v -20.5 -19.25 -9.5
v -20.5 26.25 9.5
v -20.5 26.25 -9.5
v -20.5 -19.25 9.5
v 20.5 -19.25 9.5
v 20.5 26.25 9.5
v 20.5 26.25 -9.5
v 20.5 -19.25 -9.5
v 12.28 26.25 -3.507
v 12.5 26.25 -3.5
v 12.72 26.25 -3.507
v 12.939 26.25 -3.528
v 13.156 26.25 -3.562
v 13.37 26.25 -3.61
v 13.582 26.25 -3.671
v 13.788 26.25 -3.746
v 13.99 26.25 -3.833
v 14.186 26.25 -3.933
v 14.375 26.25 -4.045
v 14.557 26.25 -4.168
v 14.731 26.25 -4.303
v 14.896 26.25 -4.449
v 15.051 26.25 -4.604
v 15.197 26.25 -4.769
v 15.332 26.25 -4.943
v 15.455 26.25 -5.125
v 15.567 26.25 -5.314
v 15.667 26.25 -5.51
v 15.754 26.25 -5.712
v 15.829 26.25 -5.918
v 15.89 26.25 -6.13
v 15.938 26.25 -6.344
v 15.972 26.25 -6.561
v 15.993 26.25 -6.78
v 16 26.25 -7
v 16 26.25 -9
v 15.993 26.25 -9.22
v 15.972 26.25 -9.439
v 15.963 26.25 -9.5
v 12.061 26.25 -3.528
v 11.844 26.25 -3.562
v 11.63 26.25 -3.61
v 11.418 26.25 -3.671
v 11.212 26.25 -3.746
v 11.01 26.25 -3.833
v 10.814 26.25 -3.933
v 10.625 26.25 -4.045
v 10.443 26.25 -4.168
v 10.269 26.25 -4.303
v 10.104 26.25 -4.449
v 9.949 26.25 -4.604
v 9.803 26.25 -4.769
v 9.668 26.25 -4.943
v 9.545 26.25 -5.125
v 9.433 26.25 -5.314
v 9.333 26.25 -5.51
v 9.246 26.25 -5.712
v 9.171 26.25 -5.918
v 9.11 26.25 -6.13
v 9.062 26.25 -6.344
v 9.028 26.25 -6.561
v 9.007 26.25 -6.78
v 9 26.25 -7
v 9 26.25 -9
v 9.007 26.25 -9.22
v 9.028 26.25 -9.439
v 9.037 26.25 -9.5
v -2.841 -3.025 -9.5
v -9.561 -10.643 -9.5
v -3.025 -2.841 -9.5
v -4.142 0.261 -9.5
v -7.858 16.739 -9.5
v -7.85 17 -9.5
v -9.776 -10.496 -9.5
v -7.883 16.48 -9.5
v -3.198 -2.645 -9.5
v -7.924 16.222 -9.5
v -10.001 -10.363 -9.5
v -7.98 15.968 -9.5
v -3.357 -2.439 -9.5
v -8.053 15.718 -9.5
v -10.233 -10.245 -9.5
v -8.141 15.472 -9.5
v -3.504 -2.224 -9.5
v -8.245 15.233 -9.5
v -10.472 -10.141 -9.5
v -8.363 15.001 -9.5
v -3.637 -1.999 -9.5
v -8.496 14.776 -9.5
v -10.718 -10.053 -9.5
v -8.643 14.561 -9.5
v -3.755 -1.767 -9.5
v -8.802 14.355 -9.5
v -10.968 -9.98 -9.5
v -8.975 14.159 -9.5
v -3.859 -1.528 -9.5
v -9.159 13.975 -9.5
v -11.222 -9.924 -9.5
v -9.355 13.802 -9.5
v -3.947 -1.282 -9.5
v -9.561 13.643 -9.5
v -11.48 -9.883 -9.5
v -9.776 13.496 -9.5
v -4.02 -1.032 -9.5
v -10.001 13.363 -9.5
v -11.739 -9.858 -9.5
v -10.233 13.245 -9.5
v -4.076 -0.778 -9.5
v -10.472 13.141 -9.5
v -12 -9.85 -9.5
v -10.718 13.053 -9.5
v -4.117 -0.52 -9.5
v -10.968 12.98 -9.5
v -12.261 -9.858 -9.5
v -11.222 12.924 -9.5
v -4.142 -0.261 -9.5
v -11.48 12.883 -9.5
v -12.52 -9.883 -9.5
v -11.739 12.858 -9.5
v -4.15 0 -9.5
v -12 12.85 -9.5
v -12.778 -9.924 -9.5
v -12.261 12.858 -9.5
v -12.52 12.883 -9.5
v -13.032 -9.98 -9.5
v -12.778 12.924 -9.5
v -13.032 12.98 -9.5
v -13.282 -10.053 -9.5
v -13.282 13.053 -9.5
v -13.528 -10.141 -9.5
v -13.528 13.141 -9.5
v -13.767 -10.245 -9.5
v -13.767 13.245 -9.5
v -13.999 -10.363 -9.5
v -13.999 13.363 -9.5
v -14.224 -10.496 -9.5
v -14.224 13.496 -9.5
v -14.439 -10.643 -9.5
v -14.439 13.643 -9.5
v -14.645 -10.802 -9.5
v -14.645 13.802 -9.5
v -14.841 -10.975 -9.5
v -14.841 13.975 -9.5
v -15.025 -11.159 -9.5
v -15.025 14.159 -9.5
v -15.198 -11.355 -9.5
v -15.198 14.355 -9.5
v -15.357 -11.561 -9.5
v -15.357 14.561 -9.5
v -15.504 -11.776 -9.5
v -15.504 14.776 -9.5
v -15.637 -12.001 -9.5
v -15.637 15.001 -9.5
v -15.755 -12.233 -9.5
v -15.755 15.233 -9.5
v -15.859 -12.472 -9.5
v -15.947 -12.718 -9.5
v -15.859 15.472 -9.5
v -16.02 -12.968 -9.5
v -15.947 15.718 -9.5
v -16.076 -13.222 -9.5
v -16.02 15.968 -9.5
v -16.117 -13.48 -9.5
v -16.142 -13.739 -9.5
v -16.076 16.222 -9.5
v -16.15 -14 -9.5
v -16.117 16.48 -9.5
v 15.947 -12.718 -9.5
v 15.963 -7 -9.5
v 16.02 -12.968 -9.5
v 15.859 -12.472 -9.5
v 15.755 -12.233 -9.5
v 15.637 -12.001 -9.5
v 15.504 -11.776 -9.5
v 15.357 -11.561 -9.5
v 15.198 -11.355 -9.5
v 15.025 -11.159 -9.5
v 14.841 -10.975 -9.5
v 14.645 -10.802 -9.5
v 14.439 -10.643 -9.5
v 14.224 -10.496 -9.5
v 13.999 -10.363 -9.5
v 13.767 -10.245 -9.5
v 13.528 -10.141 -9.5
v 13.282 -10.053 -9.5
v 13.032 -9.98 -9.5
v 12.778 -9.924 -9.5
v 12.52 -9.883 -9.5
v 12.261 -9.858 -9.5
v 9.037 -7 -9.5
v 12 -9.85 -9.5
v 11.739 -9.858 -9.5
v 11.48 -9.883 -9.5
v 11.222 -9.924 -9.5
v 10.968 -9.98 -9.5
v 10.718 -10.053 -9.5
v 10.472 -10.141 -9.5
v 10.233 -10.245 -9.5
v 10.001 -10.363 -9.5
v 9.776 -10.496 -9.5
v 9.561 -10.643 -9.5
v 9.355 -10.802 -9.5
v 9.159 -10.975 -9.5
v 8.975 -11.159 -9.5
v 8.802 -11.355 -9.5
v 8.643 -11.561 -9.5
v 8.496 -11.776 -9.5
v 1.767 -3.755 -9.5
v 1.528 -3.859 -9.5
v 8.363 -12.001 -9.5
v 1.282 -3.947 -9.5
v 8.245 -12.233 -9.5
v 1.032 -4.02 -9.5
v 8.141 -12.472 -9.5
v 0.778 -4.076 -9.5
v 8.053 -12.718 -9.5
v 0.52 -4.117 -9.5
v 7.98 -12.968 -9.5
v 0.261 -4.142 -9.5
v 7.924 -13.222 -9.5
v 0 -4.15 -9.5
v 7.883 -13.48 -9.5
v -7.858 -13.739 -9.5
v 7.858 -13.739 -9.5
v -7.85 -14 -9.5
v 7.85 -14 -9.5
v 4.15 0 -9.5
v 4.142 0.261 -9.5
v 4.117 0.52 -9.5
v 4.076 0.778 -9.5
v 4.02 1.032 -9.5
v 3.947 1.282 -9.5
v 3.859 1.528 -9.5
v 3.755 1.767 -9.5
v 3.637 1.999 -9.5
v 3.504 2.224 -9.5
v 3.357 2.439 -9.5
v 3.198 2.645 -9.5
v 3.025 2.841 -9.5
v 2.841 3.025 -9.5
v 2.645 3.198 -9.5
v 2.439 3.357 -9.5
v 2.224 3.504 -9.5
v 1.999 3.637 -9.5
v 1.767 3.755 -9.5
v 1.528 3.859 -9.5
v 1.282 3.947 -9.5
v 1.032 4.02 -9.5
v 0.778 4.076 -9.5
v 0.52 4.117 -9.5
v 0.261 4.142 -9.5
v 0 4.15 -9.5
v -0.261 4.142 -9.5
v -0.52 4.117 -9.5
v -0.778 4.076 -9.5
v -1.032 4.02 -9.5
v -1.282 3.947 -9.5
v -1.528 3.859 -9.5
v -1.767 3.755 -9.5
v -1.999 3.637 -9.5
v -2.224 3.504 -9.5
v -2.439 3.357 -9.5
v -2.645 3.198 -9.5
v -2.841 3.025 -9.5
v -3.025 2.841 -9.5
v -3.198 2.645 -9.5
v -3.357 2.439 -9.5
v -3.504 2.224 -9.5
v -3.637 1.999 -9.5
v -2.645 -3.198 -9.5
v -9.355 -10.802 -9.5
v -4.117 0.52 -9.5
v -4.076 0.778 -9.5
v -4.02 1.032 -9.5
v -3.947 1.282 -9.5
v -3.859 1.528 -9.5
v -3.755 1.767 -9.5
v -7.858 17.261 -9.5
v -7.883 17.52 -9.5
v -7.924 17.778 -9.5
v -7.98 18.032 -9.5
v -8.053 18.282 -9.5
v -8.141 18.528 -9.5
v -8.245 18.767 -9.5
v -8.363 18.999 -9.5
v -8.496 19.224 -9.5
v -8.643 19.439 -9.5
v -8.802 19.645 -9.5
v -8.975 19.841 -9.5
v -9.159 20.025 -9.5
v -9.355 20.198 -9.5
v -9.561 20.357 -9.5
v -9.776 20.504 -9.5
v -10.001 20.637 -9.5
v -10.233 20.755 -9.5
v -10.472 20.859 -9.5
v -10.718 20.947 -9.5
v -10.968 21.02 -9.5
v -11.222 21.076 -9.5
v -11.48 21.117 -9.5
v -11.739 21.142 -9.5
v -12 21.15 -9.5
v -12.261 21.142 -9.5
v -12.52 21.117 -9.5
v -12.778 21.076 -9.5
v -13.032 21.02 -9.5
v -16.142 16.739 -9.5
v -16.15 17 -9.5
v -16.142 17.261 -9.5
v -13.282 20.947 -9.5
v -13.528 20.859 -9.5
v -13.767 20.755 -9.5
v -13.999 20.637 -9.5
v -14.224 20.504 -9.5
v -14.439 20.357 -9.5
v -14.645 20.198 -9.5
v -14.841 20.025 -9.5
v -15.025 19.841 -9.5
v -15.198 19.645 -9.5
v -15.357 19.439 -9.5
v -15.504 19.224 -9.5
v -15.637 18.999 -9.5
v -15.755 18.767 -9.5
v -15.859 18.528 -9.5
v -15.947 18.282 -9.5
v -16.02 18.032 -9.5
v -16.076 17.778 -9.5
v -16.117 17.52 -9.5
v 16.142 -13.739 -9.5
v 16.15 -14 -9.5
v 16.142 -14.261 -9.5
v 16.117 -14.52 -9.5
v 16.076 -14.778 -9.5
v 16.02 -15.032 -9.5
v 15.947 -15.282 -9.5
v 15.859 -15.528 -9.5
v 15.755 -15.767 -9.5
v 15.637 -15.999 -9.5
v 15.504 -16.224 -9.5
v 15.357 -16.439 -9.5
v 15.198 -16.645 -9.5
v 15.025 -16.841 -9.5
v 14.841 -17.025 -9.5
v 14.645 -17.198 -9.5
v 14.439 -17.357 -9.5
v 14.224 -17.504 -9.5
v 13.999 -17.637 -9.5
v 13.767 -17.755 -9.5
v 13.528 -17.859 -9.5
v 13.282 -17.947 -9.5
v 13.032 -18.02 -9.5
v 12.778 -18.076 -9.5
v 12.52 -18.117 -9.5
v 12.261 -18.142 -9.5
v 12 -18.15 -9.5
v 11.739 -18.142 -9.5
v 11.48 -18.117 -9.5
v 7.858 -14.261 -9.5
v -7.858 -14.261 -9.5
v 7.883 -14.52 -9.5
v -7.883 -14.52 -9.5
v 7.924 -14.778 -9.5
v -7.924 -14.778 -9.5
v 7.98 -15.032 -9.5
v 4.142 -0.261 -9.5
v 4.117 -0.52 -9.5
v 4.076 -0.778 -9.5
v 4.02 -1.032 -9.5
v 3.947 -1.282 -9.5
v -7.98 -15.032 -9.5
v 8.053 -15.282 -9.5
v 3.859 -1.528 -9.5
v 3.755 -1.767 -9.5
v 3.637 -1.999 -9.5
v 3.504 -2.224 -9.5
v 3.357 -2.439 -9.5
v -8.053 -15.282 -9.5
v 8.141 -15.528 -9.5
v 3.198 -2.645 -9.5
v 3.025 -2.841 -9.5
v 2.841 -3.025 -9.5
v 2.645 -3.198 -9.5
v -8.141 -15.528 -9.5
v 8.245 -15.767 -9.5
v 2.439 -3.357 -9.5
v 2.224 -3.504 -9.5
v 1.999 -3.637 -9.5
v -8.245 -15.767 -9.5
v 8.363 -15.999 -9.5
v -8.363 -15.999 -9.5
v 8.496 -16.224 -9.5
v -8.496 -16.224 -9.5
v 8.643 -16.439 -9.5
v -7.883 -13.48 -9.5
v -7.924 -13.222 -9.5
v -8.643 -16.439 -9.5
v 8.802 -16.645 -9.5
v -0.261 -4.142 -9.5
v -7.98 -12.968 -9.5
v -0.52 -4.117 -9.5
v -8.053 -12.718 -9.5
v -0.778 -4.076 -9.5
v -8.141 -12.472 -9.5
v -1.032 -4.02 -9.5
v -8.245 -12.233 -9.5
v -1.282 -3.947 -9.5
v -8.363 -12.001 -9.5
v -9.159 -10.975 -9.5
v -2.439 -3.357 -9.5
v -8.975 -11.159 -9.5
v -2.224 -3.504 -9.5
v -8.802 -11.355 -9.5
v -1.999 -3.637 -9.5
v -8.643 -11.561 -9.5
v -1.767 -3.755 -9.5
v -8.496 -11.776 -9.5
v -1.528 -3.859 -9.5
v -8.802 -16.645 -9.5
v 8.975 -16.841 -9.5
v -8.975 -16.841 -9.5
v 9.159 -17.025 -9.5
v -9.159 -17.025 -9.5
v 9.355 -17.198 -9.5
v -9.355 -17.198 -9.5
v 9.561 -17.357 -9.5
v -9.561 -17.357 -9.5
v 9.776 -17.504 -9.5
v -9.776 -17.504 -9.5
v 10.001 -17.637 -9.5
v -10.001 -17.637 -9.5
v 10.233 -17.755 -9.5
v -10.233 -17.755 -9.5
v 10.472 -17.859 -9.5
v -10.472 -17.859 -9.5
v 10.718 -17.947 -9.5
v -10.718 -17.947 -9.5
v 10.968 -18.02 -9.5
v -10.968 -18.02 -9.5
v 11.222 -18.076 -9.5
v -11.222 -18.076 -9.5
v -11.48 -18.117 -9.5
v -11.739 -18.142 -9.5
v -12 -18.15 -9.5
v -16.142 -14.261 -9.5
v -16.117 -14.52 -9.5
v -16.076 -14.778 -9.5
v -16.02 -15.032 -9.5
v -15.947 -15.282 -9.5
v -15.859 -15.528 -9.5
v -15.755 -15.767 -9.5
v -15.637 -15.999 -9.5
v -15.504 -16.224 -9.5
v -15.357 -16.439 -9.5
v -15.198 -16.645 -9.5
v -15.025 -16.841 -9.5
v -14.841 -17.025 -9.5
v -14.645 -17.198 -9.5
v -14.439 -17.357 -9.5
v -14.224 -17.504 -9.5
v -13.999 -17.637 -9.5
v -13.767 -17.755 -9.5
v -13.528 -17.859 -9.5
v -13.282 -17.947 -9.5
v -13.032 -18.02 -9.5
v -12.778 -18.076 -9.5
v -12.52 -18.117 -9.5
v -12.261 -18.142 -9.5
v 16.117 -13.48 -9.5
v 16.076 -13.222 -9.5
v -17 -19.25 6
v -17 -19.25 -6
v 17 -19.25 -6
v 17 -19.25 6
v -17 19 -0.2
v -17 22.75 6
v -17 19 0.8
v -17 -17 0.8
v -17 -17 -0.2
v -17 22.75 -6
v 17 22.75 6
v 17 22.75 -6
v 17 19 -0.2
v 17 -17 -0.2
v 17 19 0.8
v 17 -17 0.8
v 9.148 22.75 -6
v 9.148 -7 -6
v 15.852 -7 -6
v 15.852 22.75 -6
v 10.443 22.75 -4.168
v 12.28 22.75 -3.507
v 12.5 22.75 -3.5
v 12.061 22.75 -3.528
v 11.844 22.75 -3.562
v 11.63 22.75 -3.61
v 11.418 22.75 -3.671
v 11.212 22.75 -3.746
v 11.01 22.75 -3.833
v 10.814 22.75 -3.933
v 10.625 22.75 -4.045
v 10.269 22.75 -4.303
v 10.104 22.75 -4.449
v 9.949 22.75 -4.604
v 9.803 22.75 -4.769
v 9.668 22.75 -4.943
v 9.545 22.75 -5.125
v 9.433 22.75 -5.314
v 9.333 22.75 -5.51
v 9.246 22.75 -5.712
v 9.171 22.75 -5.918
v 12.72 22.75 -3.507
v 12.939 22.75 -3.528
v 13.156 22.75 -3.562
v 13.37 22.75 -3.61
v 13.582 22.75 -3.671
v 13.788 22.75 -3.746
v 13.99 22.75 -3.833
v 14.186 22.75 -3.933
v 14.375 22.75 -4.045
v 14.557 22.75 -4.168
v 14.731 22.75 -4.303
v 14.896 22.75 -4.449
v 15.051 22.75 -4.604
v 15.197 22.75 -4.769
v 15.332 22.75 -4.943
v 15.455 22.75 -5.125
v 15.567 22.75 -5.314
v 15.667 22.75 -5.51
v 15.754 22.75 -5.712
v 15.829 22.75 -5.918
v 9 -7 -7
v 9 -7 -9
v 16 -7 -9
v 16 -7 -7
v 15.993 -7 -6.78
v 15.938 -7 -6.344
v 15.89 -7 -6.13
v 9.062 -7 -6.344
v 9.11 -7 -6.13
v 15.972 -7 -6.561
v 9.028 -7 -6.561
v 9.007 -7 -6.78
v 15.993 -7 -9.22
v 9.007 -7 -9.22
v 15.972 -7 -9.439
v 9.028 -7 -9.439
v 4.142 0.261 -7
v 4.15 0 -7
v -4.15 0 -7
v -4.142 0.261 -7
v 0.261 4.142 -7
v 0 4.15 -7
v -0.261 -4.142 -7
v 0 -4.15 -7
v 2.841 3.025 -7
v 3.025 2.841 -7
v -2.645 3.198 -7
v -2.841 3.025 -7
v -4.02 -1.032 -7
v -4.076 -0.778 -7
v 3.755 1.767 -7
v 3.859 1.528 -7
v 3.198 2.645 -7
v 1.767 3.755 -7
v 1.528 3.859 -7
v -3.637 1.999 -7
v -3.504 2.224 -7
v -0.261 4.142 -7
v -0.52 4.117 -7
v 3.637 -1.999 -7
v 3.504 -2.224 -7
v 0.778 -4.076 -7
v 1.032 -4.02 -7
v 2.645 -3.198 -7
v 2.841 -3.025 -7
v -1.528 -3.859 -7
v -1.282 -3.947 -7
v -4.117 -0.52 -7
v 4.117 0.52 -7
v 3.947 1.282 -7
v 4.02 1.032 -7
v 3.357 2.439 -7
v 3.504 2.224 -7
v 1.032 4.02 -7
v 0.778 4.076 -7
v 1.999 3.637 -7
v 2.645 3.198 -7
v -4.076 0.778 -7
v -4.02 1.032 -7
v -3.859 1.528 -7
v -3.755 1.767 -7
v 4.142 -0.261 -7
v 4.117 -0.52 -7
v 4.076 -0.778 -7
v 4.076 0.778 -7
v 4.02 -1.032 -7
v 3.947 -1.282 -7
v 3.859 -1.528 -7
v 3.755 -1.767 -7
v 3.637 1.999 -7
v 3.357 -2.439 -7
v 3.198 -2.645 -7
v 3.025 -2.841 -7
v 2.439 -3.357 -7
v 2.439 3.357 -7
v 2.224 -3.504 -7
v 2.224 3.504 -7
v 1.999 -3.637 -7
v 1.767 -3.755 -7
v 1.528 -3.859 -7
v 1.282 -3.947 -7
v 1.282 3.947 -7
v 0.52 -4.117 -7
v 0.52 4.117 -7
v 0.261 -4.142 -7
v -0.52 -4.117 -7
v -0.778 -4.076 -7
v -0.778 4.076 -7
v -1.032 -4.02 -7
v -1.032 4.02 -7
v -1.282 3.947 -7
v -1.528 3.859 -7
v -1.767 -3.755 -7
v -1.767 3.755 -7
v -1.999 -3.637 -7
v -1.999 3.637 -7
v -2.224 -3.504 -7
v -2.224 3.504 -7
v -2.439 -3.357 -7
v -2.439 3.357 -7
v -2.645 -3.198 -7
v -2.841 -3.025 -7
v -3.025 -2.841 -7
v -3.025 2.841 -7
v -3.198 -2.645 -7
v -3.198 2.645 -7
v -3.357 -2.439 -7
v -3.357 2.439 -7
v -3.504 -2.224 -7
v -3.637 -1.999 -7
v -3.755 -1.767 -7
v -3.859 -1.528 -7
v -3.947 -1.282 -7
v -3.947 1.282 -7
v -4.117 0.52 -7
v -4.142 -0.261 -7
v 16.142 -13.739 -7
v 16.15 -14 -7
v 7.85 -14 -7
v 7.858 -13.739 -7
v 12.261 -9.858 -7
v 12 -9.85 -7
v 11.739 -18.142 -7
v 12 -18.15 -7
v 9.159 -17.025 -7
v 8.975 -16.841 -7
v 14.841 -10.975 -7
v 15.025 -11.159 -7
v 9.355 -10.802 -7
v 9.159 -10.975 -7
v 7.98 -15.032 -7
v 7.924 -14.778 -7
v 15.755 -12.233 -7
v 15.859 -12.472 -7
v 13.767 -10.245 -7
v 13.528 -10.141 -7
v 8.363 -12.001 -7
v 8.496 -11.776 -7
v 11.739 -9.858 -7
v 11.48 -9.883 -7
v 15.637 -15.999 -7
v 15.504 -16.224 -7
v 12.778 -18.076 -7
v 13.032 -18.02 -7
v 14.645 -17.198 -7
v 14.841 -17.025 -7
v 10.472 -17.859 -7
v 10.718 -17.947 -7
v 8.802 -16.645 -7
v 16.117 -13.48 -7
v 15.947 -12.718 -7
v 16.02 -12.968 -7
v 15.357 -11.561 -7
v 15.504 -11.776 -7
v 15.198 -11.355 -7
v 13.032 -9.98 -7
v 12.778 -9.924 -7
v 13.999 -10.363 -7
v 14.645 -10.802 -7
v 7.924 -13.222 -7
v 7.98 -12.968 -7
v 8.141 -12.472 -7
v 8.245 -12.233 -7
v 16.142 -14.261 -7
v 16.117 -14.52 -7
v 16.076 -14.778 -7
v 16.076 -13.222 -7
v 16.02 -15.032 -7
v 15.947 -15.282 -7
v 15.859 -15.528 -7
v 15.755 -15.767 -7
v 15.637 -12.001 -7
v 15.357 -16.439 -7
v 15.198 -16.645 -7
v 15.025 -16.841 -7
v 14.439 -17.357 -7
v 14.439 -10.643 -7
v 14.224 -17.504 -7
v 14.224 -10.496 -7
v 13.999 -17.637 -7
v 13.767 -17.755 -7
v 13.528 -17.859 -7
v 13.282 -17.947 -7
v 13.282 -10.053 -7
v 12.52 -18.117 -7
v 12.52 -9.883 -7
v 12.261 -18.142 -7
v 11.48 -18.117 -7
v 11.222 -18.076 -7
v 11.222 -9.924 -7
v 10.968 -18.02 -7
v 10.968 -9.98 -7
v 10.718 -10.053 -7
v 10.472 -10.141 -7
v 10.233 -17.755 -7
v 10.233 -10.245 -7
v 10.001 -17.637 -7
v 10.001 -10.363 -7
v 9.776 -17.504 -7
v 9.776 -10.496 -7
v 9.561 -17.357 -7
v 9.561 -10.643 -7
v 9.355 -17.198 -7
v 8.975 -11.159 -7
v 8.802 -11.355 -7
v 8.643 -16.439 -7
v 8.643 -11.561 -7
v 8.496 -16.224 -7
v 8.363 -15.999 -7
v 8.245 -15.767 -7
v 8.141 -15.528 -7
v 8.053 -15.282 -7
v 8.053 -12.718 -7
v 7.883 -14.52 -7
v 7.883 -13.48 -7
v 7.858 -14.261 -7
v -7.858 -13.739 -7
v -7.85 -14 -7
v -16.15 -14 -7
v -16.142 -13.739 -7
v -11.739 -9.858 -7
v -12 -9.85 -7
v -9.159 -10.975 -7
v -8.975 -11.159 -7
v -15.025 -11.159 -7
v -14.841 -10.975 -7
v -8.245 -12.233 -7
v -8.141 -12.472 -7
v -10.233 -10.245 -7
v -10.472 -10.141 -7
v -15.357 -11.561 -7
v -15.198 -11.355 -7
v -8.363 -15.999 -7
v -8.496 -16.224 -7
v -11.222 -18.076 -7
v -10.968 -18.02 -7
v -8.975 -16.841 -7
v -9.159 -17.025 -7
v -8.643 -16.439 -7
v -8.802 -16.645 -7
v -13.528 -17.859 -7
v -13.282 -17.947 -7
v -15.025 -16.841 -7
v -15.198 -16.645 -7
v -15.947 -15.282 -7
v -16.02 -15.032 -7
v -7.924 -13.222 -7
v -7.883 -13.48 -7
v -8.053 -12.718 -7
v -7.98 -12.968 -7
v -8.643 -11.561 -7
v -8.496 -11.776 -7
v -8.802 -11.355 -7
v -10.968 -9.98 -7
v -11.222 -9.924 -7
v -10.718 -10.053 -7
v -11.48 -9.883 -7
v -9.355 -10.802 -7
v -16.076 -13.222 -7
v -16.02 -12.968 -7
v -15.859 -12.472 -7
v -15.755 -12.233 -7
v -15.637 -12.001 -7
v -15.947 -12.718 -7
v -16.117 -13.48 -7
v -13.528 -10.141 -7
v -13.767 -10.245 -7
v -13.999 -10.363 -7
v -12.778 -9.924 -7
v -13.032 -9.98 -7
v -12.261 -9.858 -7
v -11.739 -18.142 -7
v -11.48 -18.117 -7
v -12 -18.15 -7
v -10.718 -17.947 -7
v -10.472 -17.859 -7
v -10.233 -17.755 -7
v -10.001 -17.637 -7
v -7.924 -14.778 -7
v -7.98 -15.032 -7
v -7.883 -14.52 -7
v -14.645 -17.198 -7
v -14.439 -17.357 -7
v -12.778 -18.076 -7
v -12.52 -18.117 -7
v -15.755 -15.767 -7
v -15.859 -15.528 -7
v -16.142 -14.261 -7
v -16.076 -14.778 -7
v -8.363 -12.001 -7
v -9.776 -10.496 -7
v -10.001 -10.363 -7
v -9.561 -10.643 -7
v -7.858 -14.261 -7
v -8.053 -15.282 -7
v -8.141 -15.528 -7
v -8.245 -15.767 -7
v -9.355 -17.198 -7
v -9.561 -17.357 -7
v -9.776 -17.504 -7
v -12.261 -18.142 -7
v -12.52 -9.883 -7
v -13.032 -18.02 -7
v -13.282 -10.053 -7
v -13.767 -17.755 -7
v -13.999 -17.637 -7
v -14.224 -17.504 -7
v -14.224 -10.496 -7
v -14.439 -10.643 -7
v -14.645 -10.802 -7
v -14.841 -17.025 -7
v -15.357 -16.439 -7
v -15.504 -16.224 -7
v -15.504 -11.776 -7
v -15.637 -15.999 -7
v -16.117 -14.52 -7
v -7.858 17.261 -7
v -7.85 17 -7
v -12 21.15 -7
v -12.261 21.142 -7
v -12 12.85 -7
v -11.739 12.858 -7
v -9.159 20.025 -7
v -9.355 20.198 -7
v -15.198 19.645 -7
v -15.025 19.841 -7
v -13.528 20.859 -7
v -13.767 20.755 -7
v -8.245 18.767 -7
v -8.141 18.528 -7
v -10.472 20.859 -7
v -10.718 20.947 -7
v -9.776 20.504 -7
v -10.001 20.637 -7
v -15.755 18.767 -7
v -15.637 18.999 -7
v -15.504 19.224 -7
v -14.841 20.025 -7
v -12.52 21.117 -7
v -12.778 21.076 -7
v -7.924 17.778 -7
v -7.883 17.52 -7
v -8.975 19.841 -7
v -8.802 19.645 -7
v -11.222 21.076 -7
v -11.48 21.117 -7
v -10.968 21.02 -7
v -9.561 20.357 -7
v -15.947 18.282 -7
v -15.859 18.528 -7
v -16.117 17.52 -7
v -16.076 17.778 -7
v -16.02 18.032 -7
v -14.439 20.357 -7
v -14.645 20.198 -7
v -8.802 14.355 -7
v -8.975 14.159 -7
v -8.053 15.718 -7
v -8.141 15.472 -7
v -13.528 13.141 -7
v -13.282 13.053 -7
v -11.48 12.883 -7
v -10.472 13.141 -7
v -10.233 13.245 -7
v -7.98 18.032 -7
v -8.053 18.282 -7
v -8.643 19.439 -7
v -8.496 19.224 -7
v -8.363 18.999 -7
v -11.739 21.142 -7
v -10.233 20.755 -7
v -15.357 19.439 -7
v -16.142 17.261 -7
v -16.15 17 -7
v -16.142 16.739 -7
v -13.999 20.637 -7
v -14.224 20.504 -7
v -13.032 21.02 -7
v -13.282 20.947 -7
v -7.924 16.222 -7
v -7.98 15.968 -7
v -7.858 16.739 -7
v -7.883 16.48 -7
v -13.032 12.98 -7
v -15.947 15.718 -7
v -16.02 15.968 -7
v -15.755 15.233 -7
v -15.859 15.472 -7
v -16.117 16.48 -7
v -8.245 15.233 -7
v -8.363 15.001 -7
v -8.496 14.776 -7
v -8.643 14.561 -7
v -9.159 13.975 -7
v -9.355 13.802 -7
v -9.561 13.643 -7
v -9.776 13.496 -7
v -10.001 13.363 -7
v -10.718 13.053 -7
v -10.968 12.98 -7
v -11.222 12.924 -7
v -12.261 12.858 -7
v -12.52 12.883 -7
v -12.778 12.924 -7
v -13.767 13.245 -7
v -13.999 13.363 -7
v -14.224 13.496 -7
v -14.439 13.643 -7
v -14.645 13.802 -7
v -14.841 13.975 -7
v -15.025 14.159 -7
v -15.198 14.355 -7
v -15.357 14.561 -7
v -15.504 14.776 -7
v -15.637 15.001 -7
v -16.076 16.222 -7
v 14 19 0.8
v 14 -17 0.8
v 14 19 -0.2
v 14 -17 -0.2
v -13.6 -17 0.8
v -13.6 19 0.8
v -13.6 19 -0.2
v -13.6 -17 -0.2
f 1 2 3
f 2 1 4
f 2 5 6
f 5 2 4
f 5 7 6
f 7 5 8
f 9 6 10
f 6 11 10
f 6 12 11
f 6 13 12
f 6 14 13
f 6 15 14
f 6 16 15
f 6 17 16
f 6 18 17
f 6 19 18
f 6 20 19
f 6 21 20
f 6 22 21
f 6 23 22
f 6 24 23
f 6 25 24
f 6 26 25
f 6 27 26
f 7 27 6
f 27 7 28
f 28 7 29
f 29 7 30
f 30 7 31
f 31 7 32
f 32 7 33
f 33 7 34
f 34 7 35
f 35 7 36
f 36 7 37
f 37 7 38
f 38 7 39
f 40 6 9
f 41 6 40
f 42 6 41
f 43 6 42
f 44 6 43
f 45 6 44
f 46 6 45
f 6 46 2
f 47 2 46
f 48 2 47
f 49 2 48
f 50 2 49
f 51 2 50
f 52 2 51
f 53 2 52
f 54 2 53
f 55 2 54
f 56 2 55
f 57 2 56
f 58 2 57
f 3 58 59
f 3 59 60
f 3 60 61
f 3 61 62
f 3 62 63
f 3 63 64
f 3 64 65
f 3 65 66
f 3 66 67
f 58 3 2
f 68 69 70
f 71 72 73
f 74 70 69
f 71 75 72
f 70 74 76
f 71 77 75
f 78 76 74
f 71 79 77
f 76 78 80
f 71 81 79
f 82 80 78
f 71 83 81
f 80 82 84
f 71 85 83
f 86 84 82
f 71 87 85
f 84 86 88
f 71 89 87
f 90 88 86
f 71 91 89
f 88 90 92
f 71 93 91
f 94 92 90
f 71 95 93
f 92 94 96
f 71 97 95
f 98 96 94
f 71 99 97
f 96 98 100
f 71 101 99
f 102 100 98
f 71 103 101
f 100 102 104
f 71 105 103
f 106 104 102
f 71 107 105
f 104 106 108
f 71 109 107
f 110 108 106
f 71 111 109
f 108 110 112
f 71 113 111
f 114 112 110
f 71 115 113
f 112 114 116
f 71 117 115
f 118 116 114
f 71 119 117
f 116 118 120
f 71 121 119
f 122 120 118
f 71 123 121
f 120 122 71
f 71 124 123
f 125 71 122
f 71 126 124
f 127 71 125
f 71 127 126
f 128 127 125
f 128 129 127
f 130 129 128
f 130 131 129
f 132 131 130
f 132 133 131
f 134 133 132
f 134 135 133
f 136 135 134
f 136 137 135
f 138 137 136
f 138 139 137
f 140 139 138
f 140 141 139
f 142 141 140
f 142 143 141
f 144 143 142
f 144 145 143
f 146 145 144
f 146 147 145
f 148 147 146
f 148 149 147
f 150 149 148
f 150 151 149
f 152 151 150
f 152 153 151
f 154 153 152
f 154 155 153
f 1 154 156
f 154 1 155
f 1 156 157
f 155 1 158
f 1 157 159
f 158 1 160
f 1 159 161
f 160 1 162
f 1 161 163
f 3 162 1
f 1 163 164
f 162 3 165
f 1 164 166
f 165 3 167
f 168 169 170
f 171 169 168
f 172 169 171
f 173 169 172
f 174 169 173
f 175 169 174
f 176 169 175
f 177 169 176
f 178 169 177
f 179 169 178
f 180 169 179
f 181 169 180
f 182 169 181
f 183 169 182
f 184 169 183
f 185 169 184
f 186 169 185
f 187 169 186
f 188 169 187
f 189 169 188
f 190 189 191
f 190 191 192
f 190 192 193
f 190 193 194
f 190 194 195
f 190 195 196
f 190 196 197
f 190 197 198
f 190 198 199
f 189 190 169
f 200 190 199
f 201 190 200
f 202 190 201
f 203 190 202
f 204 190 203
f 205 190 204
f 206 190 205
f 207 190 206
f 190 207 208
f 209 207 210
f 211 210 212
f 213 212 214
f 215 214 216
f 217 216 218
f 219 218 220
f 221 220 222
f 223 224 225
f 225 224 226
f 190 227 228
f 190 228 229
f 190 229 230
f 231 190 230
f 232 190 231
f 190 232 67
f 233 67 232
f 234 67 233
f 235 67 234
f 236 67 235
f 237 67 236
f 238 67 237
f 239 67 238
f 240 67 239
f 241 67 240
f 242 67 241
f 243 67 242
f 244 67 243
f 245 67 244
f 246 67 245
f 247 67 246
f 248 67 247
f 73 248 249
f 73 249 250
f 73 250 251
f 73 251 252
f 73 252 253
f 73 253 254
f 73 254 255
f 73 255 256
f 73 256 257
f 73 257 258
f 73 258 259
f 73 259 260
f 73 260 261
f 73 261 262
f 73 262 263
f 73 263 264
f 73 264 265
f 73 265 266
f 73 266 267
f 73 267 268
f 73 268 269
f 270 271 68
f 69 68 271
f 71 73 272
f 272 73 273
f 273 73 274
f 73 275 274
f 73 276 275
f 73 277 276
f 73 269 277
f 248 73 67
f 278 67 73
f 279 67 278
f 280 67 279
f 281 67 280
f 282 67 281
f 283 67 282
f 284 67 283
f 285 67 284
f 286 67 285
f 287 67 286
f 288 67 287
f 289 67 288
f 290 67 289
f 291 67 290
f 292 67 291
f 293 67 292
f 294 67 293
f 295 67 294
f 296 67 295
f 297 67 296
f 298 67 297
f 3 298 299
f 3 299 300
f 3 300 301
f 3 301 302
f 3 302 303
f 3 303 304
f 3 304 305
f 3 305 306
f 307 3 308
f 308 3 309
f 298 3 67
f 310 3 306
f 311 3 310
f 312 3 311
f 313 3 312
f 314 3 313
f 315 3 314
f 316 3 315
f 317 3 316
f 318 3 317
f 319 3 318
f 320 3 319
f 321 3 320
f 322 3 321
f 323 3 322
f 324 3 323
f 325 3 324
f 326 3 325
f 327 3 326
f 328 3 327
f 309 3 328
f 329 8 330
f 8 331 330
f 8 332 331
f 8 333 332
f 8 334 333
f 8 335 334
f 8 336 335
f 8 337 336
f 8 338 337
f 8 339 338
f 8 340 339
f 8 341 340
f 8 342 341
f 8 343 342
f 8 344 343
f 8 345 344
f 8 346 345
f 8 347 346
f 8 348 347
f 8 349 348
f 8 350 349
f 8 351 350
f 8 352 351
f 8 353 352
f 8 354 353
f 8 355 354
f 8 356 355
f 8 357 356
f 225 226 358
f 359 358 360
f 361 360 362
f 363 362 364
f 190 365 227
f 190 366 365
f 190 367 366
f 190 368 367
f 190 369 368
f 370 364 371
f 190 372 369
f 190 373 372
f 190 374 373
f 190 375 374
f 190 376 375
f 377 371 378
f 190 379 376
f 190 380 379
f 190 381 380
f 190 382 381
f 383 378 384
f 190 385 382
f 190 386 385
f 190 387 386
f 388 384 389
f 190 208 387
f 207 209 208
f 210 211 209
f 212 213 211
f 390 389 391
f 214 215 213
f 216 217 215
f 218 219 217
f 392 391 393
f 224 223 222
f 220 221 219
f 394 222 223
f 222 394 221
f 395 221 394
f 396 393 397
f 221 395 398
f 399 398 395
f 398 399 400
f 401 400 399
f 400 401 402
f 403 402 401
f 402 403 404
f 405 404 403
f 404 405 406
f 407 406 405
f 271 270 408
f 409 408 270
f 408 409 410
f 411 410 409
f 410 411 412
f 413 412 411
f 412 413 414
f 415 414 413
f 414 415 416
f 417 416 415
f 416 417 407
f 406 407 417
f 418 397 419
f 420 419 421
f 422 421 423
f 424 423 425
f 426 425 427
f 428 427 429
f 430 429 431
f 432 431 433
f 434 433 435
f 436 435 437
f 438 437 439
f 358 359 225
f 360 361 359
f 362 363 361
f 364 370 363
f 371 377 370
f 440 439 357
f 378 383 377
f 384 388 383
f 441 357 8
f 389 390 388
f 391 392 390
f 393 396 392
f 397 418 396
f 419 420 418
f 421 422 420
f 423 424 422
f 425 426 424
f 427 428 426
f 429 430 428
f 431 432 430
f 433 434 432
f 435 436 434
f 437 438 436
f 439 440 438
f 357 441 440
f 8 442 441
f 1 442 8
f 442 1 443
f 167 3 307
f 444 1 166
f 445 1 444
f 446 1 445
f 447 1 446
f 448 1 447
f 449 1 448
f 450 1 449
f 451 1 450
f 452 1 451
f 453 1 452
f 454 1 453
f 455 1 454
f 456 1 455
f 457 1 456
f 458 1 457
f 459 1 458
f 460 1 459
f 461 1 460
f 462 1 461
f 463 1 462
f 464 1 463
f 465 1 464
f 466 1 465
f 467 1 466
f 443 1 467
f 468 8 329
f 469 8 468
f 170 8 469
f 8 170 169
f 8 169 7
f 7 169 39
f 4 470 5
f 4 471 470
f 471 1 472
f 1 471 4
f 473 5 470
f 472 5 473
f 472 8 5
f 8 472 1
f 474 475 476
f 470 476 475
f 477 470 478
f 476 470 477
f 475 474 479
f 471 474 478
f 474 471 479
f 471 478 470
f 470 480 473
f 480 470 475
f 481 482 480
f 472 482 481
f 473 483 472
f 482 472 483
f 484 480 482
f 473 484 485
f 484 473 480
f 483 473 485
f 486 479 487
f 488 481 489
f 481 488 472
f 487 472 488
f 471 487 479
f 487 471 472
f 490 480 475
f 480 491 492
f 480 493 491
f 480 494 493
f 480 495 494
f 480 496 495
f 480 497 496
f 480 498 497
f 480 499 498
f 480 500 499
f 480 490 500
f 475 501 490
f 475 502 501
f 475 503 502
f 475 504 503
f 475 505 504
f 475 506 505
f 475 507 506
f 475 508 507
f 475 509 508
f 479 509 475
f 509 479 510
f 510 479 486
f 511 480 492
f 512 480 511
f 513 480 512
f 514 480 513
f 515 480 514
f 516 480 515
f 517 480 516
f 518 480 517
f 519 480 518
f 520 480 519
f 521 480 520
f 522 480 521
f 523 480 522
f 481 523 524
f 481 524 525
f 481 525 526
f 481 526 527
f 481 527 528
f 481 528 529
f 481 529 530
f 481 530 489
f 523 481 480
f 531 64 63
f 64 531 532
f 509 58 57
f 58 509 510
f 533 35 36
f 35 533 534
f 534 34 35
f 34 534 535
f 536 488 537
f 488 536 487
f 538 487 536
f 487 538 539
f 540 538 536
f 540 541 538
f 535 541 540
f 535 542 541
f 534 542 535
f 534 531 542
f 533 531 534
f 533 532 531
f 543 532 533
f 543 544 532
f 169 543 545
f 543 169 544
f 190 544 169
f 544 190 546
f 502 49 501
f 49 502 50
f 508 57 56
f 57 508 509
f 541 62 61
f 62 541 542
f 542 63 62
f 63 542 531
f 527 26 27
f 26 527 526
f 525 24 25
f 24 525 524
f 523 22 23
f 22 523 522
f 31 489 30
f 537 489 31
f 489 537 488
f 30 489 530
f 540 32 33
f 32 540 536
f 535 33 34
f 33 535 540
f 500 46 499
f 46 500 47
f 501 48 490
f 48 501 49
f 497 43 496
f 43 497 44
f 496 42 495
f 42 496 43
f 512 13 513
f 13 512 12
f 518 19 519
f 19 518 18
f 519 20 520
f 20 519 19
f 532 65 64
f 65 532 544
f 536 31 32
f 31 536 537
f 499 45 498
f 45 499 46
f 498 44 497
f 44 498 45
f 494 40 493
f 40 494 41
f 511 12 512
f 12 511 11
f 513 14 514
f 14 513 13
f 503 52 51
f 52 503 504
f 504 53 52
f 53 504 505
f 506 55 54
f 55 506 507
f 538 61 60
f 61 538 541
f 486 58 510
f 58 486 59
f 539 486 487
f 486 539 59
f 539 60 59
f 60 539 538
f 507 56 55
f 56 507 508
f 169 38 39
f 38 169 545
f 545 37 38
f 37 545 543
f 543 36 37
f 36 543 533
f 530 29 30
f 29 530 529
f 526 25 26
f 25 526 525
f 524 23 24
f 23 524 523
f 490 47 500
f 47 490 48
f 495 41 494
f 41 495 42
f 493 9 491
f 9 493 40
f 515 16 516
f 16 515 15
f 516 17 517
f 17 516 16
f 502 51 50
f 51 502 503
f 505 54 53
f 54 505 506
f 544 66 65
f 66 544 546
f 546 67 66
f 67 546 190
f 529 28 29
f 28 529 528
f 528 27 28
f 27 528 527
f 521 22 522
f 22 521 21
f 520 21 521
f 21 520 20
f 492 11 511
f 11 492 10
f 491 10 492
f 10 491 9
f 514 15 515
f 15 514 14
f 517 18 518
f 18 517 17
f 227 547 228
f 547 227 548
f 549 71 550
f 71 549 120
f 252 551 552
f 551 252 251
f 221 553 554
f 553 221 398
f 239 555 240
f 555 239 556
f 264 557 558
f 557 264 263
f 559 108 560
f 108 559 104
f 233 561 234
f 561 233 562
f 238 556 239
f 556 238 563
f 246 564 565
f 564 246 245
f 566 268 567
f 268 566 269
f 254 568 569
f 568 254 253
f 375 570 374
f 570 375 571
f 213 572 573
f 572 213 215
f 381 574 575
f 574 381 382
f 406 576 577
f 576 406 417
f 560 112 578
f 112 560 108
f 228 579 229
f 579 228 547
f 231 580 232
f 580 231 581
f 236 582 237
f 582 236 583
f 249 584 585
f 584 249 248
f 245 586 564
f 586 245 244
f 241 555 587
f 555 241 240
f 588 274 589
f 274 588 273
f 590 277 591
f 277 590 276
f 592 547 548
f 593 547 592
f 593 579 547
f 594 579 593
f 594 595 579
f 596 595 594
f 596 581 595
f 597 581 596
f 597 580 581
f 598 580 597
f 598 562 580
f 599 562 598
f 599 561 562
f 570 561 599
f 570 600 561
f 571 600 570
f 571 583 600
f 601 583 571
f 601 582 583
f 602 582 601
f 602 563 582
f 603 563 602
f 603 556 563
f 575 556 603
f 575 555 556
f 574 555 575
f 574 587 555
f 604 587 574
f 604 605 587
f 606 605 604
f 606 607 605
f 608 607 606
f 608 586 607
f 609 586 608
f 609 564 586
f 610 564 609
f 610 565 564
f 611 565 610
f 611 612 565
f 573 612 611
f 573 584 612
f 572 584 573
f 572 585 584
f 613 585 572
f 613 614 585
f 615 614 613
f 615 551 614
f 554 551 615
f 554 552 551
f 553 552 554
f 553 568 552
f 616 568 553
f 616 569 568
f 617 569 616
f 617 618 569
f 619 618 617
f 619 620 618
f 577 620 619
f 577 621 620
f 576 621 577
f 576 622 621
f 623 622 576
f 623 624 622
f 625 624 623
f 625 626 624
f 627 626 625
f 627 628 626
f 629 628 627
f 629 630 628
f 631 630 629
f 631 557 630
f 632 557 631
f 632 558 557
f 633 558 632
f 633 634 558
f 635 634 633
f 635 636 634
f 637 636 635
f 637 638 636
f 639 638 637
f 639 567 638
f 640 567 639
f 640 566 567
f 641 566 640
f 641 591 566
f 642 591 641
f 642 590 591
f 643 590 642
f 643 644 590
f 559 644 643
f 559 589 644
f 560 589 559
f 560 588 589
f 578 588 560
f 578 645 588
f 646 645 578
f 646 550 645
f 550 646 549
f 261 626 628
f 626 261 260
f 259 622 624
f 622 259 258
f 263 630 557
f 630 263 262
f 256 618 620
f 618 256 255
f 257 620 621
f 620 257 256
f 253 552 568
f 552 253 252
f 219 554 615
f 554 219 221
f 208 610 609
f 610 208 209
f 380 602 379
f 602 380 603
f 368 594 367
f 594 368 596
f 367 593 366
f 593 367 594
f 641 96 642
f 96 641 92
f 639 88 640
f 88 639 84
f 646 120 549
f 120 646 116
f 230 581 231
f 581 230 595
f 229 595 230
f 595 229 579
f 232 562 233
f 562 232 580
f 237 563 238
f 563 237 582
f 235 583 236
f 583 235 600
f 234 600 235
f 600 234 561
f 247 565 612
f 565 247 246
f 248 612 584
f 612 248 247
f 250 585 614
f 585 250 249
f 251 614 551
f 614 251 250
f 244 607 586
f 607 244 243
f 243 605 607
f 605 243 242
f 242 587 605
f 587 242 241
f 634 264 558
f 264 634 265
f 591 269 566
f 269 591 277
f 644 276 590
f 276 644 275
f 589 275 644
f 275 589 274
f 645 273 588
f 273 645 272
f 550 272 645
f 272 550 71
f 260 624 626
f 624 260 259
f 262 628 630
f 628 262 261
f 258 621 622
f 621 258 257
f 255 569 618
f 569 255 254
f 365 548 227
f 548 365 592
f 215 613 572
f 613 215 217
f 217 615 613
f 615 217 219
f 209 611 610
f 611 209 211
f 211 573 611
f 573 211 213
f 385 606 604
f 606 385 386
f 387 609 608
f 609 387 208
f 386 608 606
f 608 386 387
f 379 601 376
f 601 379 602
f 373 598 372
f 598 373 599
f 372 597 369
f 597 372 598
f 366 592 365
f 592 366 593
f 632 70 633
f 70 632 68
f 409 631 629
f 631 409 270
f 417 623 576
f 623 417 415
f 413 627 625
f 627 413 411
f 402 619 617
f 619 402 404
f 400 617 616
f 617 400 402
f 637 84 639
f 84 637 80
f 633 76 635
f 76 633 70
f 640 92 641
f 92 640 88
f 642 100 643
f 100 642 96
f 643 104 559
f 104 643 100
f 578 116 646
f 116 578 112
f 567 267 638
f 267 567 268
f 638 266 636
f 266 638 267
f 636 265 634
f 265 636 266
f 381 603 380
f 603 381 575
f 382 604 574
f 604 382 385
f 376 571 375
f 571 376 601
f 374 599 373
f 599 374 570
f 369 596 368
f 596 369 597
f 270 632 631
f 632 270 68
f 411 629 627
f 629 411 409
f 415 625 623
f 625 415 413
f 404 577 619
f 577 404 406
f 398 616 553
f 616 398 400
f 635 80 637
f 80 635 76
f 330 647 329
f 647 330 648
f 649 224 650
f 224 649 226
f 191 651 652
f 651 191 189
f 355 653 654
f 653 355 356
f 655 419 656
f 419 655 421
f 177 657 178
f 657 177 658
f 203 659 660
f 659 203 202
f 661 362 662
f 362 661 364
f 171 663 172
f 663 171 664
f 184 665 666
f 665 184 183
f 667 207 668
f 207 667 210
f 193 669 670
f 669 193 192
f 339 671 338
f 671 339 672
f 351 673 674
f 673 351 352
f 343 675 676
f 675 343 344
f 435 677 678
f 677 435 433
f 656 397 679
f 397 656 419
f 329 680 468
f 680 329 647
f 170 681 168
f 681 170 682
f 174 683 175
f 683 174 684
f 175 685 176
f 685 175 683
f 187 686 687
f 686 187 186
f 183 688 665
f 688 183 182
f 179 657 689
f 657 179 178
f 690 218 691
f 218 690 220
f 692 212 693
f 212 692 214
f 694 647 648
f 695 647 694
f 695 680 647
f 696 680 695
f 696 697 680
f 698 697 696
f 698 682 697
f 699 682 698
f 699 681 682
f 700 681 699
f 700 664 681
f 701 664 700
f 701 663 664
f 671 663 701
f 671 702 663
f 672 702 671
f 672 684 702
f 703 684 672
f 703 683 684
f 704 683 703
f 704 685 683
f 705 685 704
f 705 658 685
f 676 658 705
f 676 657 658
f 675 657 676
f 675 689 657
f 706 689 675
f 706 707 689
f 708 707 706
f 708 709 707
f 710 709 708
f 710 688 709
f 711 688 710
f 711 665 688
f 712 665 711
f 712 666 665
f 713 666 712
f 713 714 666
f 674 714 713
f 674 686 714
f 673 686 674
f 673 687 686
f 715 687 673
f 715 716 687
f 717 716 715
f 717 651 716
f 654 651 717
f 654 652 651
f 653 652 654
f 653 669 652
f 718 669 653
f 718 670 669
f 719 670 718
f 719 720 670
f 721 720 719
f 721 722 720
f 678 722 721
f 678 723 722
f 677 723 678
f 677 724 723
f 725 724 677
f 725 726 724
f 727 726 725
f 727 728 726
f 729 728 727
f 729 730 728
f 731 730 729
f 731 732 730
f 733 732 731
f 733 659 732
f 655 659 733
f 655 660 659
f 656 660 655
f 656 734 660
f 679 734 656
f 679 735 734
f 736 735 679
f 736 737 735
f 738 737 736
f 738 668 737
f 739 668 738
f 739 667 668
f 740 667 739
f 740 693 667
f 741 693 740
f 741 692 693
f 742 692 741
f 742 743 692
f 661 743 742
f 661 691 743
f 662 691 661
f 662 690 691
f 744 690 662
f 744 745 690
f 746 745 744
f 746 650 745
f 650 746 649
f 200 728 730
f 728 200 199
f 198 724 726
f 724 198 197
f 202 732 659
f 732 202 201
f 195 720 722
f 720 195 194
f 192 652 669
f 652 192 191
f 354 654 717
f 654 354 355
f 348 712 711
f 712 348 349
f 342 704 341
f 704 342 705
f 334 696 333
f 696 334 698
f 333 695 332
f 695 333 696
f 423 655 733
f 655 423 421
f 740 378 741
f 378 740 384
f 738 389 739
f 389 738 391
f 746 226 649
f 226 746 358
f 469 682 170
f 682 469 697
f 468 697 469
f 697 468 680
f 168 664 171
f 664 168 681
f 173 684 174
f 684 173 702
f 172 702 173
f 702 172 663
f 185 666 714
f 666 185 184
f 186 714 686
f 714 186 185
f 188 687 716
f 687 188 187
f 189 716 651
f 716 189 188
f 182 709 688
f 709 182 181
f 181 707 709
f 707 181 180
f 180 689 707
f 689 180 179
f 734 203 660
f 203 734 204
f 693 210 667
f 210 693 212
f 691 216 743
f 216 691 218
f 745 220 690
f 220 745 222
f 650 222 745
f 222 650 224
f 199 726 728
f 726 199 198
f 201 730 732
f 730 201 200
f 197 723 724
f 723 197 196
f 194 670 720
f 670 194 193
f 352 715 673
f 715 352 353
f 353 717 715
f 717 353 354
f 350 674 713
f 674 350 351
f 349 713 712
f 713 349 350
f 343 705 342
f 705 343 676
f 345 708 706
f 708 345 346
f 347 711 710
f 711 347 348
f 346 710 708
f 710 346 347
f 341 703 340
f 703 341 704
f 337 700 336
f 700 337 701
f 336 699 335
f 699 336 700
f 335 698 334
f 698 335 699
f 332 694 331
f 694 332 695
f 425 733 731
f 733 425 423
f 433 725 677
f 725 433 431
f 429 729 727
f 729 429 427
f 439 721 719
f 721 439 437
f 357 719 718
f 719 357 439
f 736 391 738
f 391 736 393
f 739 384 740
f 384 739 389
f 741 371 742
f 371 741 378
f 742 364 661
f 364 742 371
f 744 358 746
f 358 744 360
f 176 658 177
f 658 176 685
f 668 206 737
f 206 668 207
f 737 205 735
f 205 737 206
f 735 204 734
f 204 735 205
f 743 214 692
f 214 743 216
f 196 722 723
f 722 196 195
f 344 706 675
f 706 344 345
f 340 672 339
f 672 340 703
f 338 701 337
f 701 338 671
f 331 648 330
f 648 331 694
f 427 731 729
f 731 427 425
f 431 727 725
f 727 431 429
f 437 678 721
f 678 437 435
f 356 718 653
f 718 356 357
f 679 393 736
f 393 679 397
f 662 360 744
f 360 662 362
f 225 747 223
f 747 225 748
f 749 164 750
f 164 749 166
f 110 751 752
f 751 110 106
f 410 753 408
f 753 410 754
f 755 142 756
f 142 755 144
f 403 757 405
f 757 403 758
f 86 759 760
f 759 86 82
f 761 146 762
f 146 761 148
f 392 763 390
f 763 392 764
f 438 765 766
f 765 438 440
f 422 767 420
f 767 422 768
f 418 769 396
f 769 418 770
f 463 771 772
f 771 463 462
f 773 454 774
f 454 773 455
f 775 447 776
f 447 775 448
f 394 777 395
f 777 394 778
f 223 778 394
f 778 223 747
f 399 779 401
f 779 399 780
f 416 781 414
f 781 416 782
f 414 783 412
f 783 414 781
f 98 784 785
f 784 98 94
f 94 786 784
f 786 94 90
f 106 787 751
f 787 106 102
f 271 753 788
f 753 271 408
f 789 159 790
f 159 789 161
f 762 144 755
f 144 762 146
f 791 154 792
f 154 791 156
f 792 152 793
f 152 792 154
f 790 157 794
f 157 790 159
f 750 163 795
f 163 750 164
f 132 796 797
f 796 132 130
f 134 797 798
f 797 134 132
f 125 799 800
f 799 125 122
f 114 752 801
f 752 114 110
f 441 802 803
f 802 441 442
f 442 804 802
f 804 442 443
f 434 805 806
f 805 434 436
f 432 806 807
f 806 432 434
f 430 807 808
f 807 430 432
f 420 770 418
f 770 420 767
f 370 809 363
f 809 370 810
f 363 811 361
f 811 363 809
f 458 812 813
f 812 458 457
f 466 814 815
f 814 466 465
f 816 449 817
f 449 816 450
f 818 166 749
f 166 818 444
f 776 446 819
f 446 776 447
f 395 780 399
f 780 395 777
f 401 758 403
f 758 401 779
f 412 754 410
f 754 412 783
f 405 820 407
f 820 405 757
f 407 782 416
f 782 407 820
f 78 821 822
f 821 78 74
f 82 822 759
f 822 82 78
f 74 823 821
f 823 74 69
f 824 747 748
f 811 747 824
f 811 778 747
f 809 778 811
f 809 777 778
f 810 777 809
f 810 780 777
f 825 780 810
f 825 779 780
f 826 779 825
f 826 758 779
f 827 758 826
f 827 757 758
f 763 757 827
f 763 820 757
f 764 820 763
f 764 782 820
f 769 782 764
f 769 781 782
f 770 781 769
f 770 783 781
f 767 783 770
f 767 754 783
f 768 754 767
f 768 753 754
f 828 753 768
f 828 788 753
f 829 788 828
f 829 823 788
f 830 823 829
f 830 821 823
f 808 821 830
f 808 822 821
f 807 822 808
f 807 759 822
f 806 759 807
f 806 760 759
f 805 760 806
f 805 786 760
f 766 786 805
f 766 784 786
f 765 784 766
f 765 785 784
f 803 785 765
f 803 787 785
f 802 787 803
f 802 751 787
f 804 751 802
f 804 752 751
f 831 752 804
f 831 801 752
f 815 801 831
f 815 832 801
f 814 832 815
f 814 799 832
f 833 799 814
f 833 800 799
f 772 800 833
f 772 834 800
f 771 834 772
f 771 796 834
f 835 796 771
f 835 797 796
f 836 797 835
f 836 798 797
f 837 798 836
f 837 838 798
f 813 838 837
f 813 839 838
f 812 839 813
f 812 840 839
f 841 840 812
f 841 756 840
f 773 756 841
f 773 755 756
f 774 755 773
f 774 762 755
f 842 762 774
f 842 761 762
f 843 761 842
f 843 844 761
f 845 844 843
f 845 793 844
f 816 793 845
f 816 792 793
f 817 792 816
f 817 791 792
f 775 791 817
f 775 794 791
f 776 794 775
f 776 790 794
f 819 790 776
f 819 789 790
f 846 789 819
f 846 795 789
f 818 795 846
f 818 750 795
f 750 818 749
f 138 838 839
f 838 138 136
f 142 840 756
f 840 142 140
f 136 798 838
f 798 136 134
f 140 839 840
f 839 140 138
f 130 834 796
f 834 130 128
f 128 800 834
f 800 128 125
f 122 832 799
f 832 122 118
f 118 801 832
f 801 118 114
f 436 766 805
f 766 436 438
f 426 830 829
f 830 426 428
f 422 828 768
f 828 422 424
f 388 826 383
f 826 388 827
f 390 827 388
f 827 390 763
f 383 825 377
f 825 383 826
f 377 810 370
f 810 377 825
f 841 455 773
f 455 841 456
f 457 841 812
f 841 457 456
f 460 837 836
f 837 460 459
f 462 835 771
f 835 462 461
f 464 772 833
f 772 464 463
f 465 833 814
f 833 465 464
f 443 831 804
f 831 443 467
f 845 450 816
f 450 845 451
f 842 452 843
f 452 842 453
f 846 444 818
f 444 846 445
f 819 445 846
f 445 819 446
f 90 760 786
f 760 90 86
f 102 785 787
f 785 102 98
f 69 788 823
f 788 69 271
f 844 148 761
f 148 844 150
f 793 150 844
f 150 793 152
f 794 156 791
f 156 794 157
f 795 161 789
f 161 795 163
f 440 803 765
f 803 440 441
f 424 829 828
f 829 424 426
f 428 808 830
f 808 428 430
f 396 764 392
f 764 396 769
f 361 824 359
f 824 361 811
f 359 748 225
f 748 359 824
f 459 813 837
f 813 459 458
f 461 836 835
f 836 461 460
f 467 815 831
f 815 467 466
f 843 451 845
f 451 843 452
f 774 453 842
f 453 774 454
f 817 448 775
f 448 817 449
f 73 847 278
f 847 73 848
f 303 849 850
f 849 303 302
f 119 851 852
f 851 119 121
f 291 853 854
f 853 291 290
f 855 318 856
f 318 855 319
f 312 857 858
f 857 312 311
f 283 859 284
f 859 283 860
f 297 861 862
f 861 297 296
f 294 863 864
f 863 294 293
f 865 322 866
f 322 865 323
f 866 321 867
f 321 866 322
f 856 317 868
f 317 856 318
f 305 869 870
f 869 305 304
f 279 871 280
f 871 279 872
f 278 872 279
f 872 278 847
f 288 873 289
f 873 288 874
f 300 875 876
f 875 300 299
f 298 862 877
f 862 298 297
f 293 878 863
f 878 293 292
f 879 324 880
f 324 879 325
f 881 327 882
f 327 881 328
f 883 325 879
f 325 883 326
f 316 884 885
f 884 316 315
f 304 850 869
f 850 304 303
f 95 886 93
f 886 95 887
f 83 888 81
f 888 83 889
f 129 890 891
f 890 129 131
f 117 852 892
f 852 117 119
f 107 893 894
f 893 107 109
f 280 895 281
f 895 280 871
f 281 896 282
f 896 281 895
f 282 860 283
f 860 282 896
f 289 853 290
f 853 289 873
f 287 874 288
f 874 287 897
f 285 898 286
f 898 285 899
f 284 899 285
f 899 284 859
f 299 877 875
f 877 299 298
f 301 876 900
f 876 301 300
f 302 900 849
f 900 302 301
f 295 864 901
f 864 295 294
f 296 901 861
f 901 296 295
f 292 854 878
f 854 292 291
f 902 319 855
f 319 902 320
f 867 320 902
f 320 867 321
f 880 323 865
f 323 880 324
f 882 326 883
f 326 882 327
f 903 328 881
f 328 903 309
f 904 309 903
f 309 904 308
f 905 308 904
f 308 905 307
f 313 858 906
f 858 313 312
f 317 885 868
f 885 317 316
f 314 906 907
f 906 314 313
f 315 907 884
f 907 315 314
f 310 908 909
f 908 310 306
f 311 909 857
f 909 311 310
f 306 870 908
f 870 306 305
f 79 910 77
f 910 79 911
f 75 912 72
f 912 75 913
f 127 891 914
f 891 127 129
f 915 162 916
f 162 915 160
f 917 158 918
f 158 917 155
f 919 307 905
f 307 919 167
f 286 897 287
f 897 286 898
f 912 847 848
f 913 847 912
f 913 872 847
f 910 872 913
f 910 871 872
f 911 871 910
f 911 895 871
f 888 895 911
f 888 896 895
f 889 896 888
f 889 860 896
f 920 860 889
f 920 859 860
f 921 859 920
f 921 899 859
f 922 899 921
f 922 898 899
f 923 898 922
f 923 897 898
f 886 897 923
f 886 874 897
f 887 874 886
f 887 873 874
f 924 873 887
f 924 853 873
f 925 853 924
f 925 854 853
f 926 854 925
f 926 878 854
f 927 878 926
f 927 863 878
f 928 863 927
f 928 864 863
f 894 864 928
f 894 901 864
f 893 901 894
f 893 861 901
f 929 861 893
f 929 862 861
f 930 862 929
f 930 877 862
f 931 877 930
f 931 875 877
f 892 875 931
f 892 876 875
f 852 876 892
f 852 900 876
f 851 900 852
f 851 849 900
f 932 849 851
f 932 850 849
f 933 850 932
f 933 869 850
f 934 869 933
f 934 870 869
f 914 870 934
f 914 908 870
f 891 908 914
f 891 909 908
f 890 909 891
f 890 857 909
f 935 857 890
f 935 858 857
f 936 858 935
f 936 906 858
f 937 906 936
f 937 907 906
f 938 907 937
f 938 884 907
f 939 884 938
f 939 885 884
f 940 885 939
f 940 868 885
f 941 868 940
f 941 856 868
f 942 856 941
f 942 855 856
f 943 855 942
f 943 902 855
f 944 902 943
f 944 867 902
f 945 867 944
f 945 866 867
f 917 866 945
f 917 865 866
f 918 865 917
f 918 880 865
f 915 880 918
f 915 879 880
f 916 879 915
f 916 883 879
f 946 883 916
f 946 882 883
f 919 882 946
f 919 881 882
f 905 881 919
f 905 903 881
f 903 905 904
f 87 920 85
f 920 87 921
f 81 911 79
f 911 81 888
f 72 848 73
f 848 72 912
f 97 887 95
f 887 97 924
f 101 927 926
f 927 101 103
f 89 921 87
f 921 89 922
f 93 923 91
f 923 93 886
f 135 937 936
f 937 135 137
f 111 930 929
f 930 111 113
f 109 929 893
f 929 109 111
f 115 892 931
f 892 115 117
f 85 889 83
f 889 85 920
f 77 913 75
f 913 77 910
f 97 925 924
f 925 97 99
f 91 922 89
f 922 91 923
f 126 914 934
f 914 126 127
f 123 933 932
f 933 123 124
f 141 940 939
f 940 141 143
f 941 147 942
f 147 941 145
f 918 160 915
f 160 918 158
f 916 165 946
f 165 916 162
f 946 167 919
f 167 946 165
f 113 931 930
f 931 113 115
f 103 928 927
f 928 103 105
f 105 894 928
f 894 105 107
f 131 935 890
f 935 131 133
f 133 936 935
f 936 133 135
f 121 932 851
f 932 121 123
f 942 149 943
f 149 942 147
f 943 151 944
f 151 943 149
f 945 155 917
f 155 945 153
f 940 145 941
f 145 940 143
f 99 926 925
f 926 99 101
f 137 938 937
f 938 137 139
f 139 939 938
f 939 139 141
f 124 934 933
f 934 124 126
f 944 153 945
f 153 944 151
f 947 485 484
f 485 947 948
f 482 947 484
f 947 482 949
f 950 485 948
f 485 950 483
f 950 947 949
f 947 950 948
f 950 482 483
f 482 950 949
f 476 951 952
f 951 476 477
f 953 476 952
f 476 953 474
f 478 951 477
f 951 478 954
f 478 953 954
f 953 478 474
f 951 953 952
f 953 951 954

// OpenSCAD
$fn = 100;


larg = 34;
alt = 12;
prof = 45.5;
esp = 3.5;

module caixa() {
    difference() {
        translate([0,esp,0]) cube([larg+2*esp,prof,alt+2*esp], center=true);
        cube([larg,prof,alt], center=true);
        
        // Furo para o sensor DS18B20
        //14mm da base até o inicio do buraco
        furo_uniforme();
    
       
        
        // Furo para fixação do imã
      translate([0,0,-8.5]) ima();
        translate([12,-14,-8.5]) ima();
        translate([-12,-14,-8.5]) ima();
        translate([-12,17,-8.5]) ima();
    }
}
module furo_uniforme(){
    hull(){
        translate([12.5,20,-9]) rotate([90,0,0]) DS18B20();
        translate([12.5,20,-7]) rotate([90,0,0]) DS18B20();
    }
}

module tampa() {
    difference() {
        translate([0,esp,0]) cube([larg+2*esp,esp,alt+2*esp], center=true);
        translate([0,0,4])cube([8,10,3], center = true);
    }
}

module DS18B20() {
    cylinder(d=7, h=54, center=true);
}
module ima() {
    cylinder( d=8.3, h=3, center=true);
}
module nicho(){
    cube([36,3.4,1]);
    
    
}
//translate([0,-30,0]) tampa();
//rotate([0,0,-90])

//nicho para melhor encaixe
//5mm de distancia da base
translate([14,19,-0.2])rotate([0,0,-90])nicho();
translate([-17,19,-0.2])rotate([0,0,-90])nicho();

caixa();
